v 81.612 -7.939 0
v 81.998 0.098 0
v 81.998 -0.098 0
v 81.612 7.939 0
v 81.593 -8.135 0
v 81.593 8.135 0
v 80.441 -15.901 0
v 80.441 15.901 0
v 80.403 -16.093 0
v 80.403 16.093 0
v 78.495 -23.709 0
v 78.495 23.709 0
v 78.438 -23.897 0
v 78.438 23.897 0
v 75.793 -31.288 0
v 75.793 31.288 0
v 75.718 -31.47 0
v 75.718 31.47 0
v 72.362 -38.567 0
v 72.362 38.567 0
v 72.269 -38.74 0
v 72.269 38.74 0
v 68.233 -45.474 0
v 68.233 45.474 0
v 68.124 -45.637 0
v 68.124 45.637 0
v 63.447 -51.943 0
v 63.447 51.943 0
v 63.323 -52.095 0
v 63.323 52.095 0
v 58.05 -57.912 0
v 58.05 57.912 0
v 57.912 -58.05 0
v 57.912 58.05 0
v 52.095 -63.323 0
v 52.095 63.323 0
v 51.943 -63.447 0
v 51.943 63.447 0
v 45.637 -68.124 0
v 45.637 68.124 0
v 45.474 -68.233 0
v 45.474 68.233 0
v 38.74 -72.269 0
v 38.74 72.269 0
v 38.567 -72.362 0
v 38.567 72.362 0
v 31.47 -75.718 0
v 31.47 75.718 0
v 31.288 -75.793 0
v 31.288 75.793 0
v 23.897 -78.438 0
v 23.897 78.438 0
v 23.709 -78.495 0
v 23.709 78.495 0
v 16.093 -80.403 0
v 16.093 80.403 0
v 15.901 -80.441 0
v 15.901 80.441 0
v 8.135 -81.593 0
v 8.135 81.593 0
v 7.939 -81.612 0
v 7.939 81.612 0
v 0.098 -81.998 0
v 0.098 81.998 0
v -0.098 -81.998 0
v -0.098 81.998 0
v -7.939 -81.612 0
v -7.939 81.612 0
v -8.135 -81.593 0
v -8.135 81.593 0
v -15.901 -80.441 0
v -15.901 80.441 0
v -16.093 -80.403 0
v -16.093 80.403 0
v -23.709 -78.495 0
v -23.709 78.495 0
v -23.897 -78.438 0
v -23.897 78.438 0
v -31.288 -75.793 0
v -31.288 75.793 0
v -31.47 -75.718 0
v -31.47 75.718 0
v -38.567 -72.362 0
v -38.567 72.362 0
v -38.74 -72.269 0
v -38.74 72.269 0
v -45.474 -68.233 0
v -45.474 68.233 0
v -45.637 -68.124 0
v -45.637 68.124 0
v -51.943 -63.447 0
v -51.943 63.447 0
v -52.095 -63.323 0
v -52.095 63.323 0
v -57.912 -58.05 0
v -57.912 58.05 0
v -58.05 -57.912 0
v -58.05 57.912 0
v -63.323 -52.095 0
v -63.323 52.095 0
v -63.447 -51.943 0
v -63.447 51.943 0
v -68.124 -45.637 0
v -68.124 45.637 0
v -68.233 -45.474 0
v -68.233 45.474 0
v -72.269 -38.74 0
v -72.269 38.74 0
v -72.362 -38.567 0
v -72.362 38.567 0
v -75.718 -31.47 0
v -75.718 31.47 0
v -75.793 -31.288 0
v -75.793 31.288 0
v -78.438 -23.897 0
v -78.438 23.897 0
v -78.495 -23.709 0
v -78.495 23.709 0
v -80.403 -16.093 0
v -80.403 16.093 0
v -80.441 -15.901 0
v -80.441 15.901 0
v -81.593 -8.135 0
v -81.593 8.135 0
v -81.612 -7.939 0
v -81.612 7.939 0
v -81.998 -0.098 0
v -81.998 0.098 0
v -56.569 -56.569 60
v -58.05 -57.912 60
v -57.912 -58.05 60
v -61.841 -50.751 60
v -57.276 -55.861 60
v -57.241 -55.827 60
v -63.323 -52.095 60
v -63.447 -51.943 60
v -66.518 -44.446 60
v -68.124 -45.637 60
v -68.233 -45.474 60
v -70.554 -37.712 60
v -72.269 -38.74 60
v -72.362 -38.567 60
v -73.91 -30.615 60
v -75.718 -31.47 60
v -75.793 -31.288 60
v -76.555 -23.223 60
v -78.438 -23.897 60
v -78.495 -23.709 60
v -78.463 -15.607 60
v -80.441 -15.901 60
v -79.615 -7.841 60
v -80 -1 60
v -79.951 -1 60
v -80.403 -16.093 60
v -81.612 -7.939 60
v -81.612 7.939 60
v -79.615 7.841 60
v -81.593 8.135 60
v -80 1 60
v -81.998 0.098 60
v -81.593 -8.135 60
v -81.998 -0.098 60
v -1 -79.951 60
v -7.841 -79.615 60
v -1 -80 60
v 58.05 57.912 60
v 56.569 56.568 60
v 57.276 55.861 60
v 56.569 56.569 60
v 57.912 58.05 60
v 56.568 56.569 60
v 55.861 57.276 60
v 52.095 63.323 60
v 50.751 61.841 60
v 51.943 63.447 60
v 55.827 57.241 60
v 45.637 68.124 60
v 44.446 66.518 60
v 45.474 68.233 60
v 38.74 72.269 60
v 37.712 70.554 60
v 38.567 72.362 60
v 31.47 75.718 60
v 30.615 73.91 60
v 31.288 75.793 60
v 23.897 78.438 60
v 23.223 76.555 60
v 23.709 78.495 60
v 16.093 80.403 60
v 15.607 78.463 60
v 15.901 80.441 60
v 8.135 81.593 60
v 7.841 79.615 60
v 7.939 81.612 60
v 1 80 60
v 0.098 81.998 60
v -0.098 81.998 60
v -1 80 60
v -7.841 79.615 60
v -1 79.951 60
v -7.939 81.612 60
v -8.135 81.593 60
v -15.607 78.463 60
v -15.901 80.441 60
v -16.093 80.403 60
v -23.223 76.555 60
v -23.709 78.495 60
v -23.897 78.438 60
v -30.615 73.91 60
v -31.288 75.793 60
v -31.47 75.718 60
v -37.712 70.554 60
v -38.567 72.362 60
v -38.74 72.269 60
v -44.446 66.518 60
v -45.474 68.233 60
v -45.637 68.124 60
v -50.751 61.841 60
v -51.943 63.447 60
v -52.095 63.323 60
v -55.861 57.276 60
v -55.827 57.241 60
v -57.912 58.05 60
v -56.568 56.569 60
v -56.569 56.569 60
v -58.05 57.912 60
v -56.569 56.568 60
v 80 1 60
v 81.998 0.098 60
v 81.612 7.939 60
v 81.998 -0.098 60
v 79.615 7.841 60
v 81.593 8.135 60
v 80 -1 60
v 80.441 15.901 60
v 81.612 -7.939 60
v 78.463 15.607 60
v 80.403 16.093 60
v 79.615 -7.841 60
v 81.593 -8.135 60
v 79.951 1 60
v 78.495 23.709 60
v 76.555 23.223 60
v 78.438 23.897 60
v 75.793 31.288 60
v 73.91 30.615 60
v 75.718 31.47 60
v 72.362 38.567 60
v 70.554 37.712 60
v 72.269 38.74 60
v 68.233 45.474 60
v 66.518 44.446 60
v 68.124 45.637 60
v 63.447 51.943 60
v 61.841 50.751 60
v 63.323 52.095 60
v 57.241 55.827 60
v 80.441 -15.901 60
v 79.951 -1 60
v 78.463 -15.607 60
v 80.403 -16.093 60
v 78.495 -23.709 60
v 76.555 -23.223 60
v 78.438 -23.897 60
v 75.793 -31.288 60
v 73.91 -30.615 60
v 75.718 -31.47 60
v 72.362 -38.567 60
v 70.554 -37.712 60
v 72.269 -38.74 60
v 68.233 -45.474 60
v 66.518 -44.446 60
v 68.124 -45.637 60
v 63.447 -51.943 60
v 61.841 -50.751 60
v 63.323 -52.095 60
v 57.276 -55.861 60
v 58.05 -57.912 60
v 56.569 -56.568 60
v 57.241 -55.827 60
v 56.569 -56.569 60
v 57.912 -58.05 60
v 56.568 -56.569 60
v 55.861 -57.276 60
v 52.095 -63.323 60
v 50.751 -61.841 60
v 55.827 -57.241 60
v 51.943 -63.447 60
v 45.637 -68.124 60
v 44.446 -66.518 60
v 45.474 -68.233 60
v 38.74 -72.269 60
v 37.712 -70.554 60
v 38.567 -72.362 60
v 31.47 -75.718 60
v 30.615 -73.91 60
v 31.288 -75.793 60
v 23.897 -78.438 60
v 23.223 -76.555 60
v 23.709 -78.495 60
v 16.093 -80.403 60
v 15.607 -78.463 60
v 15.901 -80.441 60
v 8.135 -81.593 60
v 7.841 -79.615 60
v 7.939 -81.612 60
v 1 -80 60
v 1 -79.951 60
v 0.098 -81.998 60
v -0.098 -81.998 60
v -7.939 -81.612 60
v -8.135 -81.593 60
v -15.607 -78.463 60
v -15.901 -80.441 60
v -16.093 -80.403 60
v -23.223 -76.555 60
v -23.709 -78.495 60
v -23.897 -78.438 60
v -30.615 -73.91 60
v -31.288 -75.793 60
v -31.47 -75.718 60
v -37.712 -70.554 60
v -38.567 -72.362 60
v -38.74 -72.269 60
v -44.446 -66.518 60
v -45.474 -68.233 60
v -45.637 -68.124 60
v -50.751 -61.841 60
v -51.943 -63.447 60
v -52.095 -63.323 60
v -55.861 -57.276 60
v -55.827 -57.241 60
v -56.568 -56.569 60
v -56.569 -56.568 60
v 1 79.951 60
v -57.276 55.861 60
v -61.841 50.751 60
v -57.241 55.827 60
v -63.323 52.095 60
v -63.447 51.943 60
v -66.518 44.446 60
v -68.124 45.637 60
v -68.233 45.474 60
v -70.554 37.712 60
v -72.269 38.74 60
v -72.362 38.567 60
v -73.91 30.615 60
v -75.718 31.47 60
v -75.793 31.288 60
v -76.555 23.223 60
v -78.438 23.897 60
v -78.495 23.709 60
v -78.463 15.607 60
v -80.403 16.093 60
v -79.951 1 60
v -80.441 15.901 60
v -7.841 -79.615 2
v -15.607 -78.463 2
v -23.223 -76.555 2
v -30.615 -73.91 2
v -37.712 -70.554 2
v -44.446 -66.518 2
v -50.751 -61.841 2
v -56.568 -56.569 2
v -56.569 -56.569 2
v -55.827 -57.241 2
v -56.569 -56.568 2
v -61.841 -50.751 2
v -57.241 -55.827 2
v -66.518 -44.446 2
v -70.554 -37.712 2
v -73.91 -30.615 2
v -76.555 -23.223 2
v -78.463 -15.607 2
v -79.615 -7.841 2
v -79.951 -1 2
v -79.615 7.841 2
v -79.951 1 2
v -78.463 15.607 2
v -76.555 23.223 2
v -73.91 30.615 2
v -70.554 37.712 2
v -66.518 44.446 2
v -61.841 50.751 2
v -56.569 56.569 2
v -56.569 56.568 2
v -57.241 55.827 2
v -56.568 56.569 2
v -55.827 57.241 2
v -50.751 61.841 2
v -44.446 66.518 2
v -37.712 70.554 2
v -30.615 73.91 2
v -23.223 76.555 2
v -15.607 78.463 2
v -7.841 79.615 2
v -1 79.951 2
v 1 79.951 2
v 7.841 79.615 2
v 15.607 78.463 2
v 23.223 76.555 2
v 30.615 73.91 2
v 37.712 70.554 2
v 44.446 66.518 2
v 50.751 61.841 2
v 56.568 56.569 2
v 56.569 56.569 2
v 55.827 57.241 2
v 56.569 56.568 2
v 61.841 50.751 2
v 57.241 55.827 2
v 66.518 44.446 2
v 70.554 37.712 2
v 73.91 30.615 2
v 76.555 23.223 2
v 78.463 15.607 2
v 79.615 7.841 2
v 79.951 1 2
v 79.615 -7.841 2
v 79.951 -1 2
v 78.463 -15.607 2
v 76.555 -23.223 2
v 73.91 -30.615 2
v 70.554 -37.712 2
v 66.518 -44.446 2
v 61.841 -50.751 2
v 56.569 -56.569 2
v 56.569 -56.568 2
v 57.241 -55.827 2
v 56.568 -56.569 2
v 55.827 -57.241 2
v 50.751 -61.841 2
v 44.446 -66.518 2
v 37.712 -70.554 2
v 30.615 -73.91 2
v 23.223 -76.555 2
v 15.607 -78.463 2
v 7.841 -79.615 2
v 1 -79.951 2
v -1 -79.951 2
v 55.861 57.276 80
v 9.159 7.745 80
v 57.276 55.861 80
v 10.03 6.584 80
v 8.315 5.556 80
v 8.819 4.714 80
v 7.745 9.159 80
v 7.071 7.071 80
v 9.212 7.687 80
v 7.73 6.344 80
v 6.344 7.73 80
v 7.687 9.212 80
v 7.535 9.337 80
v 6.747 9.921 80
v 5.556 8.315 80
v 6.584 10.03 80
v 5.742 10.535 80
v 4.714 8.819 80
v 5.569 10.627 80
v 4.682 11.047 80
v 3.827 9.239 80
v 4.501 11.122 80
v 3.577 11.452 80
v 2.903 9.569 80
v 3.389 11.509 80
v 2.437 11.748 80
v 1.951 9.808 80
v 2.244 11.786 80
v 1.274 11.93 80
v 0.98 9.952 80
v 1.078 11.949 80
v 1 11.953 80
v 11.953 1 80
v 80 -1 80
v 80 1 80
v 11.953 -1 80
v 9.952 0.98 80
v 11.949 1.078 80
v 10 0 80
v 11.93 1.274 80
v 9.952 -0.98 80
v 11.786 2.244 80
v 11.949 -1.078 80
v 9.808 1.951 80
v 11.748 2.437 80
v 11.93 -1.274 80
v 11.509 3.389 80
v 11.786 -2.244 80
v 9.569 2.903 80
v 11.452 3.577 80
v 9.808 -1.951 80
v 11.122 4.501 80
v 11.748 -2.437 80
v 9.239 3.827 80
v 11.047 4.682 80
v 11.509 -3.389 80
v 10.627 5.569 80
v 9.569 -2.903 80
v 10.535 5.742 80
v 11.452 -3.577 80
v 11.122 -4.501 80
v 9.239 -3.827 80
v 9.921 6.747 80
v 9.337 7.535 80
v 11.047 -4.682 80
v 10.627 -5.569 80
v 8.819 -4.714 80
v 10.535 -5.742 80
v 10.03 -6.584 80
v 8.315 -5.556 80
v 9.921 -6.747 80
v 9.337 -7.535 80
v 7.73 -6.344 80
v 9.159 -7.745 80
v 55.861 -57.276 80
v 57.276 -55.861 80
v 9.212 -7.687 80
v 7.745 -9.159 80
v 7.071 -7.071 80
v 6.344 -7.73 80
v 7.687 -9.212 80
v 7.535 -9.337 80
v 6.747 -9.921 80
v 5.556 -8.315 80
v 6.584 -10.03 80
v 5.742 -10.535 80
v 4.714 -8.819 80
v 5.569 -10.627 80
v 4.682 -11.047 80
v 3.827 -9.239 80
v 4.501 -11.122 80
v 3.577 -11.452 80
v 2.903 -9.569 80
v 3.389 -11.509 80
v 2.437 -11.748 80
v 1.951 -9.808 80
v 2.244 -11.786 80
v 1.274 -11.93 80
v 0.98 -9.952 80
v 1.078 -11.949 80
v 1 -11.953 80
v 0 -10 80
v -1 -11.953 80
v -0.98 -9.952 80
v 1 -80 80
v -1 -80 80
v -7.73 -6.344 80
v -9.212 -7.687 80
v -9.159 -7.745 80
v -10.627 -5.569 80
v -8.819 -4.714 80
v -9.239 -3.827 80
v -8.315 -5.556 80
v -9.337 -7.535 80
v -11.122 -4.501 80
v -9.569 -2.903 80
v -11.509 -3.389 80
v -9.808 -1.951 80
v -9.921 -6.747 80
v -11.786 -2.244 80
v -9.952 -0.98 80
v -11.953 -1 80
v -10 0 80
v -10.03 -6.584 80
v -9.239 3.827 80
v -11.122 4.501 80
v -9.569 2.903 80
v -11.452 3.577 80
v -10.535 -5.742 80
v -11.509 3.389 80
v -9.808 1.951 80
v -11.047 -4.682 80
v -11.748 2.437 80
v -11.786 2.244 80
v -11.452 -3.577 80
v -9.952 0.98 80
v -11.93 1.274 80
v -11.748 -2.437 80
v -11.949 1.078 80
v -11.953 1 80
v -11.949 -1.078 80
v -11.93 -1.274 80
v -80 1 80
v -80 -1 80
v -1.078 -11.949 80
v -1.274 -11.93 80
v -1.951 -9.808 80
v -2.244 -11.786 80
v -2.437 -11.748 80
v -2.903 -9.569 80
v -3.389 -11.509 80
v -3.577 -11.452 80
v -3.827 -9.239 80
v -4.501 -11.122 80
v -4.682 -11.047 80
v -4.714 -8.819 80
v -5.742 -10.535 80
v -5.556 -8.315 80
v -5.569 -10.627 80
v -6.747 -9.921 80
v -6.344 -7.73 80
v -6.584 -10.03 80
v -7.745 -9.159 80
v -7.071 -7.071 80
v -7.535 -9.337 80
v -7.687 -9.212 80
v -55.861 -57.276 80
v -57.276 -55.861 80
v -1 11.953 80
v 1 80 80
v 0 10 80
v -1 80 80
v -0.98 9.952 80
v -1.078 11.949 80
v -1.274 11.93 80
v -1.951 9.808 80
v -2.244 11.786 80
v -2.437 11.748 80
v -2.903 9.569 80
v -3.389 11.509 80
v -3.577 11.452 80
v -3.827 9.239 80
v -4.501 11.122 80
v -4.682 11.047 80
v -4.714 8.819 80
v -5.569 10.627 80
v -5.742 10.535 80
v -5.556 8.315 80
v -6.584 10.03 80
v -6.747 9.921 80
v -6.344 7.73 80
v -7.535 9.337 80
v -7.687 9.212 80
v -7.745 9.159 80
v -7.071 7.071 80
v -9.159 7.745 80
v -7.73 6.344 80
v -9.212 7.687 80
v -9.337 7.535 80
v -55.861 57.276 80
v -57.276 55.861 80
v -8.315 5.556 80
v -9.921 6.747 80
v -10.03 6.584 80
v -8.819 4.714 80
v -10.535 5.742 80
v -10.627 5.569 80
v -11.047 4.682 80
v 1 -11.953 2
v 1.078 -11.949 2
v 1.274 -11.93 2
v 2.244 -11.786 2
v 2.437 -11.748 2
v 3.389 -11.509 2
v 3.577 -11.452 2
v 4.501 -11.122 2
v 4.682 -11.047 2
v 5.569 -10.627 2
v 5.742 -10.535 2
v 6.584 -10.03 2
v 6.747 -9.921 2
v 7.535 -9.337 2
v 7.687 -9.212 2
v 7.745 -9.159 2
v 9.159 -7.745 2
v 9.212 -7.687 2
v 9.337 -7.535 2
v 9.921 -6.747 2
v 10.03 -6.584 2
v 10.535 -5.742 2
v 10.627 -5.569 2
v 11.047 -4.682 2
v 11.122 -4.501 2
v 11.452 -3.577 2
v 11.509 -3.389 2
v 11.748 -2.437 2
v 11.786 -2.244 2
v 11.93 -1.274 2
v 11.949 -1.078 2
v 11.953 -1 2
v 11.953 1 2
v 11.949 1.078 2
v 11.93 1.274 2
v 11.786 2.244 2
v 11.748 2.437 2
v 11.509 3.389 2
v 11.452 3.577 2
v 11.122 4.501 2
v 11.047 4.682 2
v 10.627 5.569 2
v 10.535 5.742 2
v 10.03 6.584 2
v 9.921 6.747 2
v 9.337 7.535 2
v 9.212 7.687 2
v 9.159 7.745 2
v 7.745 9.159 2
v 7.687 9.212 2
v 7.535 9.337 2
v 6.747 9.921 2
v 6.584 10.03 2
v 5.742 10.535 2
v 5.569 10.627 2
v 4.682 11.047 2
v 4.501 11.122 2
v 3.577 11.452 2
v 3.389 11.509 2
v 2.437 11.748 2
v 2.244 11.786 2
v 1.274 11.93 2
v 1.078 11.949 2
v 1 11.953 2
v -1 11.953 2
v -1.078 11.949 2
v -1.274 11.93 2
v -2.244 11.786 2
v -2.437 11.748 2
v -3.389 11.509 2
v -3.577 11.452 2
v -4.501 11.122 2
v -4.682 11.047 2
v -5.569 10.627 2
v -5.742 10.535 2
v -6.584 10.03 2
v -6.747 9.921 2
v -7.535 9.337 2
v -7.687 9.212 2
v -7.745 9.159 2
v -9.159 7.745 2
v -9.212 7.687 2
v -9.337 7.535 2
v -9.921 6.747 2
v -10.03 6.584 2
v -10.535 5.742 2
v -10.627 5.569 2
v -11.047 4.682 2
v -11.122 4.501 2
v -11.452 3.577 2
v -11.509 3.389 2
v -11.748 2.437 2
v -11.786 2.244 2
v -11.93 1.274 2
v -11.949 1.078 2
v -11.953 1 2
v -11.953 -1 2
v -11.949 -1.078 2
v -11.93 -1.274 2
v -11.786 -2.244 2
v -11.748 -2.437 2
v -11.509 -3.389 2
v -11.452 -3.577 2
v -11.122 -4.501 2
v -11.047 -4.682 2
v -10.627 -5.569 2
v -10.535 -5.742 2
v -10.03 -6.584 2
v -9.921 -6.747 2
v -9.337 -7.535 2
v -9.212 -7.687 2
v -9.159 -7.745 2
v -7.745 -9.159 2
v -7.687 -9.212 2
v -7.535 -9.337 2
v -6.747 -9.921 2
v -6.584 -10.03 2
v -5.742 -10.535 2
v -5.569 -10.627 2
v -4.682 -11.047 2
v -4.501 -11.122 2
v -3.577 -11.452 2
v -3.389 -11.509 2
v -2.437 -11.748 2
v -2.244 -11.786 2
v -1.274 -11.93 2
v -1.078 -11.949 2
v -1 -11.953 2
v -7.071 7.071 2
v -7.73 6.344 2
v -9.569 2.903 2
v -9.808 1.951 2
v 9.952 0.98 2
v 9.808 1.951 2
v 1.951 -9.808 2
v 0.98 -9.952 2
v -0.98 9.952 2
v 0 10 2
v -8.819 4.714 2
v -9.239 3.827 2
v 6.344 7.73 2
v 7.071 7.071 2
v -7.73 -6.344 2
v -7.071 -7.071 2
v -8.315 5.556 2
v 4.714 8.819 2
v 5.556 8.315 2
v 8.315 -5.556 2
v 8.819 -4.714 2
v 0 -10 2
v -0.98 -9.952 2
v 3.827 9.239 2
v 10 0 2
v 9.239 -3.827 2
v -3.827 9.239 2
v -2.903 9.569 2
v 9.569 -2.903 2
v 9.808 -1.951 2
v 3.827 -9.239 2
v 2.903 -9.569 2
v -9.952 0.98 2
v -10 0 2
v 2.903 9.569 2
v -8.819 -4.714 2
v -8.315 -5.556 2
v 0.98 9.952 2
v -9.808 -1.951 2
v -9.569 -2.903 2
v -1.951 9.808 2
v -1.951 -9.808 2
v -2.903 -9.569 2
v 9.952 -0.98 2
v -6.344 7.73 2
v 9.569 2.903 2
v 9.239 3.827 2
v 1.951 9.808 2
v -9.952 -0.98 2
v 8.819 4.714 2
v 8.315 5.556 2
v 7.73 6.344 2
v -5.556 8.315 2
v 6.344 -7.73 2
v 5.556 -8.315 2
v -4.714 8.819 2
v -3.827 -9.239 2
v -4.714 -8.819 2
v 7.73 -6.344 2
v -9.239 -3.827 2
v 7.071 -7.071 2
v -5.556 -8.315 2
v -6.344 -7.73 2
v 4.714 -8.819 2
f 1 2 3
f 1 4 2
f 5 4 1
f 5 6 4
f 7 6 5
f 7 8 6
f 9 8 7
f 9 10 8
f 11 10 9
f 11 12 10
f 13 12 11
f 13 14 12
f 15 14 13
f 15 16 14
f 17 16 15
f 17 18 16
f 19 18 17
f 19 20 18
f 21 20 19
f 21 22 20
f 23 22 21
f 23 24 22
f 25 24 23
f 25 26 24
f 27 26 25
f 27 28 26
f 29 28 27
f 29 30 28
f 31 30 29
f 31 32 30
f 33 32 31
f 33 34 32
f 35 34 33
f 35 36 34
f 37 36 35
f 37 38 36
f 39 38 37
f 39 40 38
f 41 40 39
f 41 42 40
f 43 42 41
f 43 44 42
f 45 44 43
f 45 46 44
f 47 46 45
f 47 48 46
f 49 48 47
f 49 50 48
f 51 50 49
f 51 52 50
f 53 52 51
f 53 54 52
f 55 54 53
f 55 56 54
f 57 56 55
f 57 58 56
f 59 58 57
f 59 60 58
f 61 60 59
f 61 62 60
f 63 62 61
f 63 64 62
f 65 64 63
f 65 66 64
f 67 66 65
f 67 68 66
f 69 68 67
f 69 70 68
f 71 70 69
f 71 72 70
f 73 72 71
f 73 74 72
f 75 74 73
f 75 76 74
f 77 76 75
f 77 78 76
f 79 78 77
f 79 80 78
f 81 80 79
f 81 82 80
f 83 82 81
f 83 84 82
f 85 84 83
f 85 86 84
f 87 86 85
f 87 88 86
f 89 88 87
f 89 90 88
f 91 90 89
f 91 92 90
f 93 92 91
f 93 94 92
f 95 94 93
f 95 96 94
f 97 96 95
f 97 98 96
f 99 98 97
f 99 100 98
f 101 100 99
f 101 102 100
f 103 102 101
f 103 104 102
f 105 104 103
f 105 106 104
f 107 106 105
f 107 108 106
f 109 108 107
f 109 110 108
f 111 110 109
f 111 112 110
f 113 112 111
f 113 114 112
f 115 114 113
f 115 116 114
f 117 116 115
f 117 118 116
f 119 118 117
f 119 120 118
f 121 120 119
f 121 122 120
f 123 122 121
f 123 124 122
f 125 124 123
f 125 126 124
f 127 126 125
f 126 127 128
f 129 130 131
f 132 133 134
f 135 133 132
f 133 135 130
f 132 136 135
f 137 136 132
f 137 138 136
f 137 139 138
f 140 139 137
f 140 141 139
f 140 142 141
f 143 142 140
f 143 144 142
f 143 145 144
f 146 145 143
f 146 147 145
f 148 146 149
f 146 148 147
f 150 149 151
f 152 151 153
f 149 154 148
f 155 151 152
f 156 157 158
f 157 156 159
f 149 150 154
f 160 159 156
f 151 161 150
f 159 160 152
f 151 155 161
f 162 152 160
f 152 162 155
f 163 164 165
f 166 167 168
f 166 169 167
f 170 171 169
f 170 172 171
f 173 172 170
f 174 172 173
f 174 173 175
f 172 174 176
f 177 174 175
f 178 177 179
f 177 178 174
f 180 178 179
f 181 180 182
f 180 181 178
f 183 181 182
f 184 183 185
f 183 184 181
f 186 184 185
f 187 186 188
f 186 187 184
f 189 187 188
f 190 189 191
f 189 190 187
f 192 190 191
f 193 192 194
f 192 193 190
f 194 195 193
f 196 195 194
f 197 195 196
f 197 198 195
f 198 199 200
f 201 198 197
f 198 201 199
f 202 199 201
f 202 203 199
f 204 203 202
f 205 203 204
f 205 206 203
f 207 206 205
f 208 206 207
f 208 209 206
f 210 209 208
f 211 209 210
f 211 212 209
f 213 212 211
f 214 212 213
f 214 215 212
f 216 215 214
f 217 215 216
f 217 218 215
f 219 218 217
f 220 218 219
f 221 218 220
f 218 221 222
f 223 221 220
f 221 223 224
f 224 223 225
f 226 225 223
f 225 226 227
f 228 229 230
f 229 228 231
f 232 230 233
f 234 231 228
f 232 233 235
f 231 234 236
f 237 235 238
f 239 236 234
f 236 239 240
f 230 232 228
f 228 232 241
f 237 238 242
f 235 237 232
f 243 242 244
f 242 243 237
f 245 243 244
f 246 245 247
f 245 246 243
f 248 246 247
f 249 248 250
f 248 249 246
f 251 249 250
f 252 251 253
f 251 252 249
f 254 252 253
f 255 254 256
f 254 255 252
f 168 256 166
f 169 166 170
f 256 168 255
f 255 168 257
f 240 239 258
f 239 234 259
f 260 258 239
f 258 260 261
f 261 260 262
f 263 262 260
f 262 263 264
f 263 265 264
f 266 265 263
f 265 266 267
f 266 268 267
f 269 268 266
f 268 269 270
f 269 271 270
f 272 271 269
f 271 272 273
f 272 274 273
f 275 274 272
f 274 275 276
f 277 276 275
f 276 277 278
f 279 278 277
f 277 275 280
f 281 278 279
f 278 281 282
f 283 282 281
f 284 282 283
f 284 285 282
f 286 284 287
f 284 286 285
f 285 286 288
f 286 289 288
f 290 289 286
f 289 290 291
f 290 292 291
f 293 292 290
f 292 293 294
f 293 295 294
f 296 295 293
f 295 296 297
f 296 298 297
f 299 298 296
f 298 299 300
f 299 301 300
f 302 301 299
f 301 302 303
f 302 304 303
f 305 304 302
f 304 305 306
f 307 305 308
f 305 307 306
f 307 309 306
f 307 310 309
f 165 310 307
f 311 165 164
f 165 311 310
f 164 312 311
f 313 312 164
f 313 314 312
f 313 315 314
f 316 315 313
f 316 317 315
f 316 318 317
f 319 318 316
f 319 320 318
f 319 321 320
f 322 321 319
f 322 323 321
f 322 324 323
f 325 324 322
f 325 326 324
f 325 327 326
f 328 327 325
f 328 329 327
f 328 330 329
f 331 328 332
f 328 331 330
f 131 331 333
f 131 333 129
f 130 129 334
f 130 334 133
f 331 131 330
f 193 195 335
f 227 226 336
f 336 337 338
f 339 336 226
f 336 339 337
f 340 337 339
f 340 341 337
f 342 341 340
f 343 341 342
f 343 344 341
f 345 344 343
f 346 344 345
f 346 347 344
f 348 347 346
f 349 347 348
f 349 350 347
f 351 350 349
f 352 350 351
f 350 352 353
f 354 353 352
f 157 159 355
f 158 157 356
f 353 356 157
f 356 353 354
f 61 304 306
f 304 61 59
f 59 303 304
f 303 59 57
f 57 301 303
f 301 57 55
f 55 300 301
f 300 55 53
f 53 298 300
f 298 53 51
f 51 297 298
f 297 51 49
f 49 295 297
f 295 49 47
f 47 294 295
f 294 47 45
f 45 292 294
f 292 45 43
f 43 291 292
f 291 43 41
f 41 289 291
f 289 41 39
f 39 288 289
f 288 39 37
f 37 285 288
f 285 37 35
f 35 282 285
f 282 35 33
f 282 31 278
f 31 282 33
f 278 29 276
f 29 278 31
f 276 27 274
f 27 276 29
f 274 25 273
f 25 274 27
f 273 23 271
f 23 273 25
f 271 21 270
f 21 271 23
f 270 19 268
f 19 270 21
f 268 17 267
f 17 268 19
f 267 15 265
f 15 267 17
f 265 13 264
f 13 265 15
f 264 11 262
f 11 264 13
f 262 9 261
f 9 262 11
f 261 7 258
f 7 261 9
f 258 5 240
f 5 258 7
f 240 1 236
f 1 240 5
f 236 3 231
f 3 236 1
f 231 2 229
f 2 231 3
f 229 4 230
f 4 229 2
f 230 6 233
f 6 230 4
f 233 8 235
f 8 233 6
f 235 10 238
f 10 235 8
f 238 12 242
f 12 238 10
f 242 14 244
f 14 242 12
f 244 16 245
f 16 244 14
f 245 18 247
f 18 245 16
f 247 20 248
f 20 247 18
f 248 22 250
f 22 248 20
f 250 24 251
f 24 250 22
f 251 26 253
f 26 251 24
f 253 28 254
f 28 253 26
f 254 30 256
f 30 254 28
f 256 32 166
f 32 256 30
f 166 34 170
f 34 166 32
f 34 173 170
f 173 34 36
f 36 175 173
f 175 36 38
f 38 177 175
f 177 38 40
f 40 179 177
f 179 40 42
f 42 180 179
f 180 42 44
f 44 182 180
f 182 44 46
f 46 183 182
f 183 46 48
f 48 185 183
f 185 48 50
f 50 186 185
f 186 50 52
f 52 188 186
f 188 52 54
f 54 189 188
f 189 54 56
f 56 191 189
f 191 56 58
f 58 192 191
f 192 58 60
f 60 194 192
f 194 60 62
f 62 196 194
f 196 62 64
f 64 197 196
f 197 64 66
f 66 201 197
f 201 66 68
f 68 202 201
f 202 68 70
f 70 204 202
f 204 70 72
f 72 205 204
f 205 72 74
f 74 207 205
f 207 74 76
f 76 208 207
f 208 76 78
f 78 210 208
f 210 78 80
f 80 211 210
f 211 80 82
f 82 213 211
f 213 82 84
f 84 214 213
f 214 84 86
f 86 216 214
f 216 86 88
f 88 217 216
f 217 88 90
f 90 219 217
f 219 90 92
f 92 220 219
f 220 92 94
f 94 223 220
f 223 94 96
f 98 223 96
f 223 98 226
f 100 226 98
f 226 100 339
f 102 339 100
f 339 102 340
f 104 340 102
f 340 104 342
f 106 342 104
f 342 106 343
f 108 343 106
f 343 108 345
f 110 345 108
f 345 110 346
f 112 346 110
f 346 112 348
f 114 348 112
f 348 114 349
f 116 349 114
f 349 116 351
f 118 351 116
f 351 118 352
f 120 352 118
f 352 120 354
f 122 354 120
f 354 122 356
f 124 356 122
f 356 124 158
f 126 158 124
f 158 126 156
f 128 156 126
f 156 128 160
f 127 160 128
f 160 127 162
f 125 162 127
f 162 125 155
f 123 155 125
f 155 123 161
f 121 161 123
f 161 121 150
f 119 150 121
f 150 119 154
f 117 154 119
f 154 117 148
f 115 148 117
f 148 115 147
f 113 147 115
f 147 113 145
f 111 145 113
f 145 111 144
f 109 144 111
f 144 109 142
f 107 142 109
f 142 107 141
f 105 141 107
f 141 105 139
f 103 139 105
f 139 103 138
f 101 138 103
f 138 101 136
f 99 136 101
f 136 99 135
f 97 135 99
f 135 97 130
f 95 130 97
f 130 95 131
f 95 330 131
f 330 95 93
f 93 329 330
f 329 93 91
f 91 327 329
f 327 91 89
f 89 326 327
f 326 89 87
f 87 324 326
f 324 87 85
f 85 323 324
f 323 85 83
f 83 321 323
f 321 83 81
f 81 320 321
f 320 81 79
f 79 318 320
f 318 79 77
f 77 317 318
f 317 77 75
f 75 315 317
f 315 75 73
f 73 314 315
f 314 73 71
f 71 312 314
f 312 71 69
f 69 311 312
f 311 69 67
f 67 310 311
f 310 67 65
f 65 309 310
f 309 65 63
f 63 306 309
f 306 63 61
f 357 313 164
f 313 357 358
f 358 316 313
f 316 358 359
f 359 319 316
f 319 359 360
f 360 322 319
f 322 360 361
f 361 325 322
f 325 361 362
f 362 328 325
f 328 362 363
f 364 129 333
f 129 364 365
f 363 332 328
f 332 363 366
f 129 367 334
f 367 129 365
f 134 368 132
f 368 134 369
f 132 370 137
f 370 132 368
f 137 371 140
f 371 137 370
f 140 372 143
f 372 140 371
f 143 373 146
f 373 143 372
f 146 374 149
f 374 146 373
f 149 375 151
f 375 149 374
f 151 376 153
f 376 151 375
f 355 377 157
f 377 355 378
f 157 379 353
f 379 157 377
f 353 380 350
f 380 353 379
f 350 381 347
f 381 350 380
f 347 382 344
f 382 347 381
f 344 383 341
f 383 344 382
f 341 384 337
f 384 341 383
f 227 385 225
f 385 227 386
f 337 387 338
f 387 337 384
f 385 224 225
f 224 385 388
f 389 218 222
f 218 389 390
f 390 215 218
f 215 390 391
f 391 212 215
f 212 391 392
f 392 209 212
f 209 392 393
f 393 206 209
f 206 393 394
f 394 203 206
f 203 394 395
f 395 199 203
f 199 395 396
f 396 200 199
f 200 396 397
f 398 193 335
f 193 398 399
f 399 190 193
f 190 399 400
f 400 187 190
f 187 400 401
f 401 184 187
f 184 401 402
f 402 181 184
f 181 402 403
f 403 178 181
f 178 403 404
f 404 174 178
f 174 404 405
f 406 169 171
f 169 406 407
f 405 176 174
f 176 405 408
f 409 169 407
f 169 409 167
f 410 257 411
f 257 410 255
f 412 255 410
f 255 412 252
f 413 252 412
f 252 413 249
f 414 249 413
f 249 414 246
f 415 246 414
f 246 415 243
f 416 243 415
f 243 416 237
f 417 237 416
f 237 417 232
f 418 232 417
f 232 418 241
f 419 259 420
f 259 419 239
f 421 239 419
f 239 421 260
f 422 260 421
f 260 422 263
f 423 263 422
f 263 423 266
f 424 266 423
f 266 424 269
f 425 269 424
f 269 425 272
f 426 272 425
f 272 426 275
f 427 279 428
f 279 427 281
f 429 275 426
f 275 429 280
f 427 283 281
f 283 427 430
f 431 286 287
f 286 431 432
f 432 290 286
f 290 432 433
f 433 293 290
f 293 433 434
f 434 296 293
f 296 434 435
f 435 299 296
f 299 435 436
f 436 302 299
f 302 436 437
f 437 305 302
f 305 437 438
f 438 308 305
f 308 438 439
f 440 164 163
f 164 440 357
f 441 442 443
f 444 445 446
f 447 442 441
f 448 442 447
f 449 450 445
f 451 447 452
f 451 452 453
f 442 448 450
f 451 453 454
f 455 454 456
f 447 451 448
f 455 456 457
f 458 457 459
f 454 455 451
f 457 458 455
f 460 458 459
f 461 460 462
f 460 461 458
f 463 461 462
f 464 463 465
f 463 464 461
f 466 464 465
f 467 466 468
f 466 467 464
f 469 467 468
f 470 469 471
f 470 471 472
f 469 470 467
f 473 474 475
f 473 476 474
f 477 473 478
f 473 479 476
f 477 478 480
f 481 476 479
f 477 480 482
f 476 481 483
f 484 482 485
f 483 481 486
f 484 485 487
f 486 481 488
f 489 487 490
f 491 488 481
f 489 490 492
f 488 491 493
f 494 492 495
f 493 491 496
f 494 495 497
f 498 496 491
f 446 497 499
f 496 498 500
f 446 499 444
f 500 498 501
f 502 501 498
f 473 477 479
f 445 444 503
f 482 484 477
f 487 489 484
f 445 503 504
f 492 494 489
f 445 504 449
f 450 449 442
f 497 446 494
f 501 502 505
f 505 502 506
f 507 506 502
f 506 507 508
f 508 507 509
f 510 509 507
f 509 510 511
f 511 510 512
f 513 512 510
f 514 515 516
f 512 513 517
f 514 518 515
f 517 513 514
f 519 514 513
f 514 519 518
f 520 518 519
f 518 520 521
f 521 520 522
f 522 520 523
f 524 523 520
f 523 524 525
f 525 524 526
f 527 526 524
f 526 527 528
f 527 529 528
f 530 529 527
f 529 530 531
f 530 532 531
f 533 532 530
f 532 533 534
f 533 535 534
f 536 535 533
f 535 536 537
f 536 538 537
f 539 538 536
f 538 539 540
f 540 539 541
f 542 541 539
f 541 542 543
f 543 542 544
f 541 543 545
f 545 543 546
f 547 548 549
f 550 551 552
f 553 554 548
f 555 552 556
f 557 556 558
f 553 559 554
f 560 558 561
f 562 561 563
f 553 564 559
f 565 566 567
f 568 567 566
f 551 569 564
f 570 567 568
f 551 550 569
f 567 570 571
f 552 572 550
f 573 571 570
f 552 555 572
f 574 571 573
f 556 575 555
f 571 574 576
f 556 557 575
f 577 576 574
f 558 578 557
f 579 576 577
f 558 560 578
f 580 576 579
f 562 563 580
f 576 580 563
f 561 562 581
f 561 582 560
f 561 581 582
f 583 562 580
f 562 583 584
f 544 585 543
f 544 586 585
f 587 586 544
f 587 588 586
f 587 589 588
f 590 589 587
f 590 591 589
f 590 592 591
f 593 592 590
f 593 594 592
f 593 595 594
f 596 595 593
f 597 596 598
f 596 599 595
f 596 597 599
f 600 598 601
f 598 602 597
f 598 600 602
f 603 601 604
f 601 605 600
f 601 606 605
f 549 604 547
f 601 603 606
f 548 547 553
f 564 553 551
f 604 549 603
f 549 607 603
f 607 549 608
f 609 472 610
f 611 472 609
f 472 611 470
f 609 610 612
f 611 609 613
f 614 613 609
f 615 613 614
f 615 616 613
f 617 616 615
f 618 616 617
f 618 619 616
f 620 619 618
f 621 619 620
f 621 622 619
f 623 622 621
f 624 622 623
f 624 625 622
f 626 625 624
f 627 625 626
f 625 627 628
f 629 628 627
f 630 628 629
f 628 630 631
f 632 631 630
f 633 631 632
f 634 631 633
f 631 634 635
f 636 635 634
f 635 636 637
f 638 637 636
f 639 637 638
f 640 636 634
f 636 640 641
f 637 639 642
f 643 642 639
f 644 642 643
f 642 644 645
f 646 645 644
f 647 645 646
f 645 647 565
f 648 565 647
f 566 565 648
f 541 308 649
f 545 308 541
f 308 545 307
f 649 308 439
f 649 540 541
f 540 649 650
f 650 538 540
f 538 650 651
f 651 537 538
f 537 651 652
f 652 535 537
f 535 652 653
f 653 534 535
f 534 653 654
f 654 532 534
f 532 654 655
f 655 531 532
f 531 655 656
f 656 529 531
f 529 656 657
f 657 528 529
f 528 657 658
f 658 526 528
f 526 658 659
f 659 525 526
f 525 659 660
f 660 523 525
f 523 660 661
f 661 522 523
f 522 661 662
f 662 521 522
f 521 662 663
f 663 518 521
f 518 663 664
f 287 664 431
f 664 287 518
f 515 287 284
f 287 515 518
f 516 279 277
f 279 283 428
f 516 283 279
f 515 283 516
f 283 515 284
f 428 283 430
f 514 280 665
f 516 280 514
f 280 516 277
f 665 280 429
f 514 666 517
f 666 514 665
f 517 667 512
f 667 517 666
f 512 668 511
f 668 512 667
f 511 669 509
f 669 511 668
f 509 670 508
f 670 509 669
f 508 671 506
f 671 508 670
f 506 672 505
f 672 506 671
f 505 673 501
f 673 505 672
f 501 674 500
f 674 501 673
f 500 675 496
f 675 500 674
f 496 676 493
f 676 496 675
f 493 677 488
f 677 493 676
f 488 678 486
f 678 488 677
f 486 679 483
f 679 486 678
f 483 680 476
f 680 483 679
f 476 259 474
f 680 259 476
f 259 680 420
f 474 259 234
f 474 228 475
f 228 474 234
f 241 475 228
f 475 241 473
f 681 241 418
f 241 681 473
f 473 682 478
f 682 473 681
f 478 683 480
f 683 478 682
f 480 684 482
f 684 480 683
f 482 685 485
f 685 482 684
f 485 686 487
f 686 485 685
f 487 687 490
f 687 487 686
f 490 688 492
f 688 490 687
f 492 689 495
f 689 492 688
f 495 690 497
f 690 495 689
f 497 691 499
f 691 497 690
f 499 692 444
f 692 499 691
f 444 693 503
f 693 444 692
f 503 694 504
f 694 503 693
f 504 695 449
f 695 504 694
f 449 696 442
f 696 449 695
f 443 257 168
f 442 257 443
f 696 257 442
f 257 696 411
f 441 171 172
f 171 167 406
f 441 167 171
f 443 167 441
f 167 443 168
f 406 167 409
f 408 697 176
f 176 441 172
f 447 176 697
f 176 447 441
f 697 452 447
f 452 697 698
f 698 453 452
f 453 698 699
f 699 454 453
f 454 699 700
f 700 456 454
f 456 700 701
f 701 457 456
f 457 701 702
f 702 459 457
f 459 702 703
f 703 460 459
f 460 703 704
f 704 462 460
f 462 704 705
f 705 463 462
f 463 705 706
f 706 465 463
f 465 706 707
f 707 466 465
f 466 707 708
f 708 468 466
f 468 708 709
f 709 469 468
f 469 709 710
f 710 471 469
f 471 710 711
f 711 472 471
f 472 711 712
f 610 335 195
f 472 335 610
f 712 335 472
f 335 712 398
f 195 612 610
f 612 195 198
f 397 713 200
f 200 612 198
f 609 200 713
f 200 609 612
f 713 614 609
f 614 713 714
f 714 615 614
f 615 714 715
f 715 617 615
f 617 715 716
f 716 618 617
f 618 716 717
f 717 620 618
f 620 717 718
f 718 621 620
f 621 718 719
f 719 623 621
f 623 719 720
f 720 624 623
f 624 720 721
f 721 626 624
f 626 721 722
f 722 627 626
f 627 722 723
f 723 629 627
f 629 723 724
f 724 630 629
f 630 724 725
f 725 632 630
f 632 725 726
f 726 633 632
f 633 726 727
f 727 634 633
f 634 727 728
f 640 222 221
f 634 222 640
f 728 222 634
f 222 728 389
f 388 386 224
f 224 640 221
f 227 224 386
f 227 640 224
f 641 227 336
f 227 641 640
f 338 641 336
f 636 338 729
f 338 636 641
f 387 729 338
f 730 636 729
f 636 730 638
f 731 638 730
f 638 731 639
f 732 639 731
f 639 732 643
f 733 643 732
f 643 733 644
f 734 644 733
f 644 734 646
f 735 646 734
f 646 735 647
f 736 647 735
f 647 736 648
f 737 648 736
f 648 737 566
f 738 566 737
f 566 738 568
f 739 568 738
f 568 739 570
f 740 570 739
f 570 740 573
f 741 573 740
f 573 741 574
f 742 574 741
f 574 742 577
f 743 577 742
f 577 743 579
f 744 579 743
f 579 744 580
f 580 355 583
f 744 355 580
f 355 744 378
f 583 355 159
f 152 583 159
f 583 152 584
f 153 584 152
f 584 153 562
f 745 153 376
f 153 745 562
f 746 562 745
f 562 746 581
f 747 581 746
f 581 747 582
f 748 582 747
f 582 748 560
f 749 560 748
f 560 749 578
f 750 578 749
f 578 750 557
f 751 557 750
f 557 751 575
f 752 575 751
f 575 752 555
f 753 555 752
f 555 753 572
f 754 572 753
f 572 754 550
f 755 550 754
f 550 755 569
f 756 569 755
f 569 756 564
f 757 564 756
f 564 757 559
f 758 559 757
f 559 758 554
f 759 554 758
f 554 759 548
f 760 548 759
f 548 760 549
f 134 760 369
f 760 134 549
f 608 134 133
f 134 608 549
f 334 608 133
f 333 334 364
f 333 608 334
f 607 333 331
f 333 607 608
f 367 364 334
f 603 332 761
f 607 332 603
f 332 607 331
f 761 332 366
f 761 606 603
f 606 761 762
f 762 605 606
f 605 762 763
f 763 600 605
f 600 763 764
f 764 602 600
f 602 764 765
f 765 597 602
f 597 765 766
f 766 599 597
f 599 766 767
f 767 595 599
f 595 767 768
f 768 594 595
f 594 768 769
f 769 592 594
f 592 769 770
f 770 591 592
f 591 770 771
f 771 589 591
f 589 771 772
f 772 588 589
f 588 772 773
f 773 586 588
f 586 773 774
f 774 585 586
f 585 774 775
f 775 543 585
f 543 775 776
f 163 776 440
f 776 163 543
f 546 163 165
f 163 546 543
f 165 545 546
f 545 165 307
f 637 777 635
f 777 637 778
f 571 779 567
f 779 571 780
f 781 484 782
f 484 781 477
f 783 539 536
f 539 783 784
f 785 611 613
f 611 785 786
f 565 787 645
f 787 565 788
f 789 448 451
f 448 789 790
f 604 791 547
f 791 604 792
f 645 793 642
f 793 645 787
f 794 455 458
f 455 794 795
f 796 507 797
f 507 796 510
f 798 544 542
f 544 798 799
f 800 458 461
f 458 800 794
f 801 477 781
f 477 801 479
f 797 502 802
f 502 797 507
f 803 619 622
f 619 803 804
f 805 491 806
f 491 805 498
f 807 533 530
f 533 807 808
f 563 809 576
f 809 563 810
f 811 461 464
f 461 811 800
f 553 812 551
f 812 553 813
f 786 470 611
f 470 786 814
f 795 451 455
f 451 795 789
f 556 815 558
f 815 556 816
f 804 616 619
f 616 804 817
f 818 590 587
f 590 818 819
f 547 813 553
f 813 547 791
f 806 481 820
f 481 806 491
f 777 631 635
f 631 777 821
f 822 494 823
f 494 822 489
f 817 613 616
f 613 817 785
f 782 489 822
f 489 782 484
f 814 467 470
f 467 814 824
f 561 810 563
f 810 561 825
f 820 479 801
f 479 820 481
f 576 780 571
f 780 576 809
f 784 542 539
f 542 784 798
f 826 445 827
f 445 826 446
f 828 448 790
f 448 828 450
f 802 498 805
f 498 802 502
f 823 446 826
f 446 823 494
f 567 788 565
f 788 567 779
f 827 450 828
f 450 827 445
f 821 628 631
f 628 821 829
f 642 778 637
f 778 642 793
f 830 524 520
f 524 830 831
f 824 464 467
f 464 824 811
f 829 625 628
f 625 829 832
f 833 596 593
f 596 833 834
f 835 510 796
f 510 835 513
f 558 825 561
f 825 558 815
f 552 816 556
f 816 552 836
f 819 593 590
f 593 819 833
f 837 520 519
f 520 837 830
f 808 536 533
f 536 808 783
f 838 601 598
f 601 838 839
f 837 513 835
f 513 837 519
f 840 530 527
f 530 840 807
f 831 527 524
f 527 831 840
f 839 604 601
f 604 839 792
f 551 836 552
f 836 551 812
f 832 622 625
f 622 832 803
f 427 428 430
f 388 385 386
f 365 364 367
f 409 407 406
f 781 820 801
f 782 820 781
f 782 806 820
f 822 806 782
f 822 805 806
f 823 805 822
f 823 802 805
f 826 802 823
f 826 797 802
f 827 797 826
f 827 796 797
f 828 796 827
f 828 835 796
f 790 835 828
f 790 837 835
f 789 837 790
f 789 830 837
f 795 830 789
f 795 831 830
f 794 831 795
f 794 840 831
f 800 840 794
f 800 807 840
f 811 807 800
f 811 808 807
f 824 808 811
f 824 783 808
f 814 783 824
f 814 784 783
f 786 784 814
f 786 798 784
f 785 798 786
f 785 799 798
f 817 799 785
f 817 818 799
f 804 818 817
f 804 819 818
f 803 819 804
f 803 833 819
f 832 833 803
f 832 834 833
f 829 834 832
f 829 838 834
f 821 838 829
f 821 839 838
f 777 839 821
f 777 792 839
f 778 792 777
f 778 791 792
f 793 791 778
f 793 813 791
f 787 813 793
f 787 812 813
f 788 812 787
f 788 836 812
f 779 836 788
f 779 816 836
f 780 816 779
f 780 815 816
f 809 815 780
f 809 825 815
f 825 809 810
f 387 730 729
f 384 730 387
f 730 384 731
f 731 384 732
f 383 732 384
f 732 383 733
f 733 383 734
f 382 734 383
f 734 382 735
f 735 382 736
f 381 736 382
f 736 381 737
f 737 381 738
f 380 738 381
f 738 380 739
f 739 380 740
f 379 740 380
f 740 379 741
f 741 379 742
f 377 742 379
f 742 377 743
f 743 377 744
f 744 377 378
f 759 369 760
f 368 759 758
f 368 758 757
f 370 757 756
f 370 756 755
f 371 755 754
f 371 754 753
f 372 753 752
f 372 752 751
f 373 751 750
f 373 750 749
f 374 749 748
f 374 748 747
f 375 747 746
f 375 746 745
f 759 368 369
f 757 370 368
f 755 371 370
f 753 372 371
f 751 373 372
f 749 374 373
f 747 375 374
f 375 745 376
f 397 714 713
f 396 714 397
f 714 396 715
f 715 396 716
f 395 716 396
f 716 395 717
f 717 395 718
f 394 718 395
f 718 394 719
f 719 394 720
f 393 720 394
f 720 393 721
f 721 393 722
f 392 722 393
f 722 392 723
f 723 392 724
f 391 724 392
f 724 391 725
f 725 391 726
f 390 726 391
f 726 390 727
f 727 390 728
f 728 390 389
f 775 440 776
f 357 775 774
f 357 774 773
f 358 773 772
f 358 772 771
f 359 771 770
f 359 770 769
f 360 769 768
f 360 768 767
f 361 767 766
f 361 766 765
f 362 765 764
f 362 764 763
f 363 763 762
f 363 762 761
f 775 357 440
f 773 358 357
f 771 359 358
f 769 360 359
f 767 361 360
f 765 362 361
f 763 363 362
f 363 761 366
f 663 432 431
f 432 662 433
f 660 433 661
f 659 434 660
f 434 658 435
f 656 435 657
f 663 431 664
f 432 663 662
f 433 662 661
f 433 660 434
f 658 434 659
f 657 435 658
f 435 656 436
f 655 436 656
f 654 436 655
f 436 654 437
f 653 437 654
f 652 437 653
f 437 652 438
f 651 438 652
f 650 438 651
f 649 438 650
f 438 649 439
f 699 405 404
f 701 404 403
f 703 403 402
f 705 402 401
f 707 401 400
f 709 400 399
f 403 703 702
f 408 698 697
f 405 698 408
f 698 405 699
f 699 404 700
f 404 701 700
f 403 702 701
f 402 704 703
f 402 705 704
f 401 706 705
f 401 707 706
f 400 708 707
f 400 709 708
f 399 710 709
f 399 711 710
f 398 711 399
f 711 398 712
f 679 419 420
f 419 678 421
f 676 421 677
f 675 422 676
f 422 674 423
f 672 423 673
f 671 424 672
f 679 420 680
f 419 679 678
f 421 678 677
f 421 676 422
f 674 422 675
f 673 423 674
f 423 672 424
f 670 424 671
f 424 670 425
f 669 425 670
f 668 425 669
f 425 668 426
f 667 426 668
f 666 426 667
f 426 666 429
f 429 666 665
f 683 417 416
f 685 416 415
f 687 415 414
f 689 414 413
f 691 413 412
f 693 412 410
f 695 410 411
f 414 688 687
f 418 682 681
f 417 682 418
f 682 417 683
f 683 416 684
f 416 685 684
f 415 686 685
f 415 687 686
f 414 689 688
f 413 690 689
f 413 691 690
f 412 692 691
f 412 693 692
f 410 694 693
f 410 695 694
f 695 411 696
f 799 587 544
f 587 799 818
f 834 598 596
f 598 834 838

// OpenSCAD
$fn = 64;
cylinder (2, 80, 80);

difference(){
union(){
linear_extrude(60) {
difference(){
    offset(2) circle(80);
    offset(0) circle(80);
}
}
linear_extrude(80) {
difference(){
    offset(2) circle(10);
    offset(0) circle(10);
} 


translate([0,10,0]) square([2, 140], true);
for(i=[0:45:360]){
    
rotate(i) translate([0,10,0]) square([2,140], true);
}
}
}
translate([0,0,2]) cylinder(80,10,10);
}
